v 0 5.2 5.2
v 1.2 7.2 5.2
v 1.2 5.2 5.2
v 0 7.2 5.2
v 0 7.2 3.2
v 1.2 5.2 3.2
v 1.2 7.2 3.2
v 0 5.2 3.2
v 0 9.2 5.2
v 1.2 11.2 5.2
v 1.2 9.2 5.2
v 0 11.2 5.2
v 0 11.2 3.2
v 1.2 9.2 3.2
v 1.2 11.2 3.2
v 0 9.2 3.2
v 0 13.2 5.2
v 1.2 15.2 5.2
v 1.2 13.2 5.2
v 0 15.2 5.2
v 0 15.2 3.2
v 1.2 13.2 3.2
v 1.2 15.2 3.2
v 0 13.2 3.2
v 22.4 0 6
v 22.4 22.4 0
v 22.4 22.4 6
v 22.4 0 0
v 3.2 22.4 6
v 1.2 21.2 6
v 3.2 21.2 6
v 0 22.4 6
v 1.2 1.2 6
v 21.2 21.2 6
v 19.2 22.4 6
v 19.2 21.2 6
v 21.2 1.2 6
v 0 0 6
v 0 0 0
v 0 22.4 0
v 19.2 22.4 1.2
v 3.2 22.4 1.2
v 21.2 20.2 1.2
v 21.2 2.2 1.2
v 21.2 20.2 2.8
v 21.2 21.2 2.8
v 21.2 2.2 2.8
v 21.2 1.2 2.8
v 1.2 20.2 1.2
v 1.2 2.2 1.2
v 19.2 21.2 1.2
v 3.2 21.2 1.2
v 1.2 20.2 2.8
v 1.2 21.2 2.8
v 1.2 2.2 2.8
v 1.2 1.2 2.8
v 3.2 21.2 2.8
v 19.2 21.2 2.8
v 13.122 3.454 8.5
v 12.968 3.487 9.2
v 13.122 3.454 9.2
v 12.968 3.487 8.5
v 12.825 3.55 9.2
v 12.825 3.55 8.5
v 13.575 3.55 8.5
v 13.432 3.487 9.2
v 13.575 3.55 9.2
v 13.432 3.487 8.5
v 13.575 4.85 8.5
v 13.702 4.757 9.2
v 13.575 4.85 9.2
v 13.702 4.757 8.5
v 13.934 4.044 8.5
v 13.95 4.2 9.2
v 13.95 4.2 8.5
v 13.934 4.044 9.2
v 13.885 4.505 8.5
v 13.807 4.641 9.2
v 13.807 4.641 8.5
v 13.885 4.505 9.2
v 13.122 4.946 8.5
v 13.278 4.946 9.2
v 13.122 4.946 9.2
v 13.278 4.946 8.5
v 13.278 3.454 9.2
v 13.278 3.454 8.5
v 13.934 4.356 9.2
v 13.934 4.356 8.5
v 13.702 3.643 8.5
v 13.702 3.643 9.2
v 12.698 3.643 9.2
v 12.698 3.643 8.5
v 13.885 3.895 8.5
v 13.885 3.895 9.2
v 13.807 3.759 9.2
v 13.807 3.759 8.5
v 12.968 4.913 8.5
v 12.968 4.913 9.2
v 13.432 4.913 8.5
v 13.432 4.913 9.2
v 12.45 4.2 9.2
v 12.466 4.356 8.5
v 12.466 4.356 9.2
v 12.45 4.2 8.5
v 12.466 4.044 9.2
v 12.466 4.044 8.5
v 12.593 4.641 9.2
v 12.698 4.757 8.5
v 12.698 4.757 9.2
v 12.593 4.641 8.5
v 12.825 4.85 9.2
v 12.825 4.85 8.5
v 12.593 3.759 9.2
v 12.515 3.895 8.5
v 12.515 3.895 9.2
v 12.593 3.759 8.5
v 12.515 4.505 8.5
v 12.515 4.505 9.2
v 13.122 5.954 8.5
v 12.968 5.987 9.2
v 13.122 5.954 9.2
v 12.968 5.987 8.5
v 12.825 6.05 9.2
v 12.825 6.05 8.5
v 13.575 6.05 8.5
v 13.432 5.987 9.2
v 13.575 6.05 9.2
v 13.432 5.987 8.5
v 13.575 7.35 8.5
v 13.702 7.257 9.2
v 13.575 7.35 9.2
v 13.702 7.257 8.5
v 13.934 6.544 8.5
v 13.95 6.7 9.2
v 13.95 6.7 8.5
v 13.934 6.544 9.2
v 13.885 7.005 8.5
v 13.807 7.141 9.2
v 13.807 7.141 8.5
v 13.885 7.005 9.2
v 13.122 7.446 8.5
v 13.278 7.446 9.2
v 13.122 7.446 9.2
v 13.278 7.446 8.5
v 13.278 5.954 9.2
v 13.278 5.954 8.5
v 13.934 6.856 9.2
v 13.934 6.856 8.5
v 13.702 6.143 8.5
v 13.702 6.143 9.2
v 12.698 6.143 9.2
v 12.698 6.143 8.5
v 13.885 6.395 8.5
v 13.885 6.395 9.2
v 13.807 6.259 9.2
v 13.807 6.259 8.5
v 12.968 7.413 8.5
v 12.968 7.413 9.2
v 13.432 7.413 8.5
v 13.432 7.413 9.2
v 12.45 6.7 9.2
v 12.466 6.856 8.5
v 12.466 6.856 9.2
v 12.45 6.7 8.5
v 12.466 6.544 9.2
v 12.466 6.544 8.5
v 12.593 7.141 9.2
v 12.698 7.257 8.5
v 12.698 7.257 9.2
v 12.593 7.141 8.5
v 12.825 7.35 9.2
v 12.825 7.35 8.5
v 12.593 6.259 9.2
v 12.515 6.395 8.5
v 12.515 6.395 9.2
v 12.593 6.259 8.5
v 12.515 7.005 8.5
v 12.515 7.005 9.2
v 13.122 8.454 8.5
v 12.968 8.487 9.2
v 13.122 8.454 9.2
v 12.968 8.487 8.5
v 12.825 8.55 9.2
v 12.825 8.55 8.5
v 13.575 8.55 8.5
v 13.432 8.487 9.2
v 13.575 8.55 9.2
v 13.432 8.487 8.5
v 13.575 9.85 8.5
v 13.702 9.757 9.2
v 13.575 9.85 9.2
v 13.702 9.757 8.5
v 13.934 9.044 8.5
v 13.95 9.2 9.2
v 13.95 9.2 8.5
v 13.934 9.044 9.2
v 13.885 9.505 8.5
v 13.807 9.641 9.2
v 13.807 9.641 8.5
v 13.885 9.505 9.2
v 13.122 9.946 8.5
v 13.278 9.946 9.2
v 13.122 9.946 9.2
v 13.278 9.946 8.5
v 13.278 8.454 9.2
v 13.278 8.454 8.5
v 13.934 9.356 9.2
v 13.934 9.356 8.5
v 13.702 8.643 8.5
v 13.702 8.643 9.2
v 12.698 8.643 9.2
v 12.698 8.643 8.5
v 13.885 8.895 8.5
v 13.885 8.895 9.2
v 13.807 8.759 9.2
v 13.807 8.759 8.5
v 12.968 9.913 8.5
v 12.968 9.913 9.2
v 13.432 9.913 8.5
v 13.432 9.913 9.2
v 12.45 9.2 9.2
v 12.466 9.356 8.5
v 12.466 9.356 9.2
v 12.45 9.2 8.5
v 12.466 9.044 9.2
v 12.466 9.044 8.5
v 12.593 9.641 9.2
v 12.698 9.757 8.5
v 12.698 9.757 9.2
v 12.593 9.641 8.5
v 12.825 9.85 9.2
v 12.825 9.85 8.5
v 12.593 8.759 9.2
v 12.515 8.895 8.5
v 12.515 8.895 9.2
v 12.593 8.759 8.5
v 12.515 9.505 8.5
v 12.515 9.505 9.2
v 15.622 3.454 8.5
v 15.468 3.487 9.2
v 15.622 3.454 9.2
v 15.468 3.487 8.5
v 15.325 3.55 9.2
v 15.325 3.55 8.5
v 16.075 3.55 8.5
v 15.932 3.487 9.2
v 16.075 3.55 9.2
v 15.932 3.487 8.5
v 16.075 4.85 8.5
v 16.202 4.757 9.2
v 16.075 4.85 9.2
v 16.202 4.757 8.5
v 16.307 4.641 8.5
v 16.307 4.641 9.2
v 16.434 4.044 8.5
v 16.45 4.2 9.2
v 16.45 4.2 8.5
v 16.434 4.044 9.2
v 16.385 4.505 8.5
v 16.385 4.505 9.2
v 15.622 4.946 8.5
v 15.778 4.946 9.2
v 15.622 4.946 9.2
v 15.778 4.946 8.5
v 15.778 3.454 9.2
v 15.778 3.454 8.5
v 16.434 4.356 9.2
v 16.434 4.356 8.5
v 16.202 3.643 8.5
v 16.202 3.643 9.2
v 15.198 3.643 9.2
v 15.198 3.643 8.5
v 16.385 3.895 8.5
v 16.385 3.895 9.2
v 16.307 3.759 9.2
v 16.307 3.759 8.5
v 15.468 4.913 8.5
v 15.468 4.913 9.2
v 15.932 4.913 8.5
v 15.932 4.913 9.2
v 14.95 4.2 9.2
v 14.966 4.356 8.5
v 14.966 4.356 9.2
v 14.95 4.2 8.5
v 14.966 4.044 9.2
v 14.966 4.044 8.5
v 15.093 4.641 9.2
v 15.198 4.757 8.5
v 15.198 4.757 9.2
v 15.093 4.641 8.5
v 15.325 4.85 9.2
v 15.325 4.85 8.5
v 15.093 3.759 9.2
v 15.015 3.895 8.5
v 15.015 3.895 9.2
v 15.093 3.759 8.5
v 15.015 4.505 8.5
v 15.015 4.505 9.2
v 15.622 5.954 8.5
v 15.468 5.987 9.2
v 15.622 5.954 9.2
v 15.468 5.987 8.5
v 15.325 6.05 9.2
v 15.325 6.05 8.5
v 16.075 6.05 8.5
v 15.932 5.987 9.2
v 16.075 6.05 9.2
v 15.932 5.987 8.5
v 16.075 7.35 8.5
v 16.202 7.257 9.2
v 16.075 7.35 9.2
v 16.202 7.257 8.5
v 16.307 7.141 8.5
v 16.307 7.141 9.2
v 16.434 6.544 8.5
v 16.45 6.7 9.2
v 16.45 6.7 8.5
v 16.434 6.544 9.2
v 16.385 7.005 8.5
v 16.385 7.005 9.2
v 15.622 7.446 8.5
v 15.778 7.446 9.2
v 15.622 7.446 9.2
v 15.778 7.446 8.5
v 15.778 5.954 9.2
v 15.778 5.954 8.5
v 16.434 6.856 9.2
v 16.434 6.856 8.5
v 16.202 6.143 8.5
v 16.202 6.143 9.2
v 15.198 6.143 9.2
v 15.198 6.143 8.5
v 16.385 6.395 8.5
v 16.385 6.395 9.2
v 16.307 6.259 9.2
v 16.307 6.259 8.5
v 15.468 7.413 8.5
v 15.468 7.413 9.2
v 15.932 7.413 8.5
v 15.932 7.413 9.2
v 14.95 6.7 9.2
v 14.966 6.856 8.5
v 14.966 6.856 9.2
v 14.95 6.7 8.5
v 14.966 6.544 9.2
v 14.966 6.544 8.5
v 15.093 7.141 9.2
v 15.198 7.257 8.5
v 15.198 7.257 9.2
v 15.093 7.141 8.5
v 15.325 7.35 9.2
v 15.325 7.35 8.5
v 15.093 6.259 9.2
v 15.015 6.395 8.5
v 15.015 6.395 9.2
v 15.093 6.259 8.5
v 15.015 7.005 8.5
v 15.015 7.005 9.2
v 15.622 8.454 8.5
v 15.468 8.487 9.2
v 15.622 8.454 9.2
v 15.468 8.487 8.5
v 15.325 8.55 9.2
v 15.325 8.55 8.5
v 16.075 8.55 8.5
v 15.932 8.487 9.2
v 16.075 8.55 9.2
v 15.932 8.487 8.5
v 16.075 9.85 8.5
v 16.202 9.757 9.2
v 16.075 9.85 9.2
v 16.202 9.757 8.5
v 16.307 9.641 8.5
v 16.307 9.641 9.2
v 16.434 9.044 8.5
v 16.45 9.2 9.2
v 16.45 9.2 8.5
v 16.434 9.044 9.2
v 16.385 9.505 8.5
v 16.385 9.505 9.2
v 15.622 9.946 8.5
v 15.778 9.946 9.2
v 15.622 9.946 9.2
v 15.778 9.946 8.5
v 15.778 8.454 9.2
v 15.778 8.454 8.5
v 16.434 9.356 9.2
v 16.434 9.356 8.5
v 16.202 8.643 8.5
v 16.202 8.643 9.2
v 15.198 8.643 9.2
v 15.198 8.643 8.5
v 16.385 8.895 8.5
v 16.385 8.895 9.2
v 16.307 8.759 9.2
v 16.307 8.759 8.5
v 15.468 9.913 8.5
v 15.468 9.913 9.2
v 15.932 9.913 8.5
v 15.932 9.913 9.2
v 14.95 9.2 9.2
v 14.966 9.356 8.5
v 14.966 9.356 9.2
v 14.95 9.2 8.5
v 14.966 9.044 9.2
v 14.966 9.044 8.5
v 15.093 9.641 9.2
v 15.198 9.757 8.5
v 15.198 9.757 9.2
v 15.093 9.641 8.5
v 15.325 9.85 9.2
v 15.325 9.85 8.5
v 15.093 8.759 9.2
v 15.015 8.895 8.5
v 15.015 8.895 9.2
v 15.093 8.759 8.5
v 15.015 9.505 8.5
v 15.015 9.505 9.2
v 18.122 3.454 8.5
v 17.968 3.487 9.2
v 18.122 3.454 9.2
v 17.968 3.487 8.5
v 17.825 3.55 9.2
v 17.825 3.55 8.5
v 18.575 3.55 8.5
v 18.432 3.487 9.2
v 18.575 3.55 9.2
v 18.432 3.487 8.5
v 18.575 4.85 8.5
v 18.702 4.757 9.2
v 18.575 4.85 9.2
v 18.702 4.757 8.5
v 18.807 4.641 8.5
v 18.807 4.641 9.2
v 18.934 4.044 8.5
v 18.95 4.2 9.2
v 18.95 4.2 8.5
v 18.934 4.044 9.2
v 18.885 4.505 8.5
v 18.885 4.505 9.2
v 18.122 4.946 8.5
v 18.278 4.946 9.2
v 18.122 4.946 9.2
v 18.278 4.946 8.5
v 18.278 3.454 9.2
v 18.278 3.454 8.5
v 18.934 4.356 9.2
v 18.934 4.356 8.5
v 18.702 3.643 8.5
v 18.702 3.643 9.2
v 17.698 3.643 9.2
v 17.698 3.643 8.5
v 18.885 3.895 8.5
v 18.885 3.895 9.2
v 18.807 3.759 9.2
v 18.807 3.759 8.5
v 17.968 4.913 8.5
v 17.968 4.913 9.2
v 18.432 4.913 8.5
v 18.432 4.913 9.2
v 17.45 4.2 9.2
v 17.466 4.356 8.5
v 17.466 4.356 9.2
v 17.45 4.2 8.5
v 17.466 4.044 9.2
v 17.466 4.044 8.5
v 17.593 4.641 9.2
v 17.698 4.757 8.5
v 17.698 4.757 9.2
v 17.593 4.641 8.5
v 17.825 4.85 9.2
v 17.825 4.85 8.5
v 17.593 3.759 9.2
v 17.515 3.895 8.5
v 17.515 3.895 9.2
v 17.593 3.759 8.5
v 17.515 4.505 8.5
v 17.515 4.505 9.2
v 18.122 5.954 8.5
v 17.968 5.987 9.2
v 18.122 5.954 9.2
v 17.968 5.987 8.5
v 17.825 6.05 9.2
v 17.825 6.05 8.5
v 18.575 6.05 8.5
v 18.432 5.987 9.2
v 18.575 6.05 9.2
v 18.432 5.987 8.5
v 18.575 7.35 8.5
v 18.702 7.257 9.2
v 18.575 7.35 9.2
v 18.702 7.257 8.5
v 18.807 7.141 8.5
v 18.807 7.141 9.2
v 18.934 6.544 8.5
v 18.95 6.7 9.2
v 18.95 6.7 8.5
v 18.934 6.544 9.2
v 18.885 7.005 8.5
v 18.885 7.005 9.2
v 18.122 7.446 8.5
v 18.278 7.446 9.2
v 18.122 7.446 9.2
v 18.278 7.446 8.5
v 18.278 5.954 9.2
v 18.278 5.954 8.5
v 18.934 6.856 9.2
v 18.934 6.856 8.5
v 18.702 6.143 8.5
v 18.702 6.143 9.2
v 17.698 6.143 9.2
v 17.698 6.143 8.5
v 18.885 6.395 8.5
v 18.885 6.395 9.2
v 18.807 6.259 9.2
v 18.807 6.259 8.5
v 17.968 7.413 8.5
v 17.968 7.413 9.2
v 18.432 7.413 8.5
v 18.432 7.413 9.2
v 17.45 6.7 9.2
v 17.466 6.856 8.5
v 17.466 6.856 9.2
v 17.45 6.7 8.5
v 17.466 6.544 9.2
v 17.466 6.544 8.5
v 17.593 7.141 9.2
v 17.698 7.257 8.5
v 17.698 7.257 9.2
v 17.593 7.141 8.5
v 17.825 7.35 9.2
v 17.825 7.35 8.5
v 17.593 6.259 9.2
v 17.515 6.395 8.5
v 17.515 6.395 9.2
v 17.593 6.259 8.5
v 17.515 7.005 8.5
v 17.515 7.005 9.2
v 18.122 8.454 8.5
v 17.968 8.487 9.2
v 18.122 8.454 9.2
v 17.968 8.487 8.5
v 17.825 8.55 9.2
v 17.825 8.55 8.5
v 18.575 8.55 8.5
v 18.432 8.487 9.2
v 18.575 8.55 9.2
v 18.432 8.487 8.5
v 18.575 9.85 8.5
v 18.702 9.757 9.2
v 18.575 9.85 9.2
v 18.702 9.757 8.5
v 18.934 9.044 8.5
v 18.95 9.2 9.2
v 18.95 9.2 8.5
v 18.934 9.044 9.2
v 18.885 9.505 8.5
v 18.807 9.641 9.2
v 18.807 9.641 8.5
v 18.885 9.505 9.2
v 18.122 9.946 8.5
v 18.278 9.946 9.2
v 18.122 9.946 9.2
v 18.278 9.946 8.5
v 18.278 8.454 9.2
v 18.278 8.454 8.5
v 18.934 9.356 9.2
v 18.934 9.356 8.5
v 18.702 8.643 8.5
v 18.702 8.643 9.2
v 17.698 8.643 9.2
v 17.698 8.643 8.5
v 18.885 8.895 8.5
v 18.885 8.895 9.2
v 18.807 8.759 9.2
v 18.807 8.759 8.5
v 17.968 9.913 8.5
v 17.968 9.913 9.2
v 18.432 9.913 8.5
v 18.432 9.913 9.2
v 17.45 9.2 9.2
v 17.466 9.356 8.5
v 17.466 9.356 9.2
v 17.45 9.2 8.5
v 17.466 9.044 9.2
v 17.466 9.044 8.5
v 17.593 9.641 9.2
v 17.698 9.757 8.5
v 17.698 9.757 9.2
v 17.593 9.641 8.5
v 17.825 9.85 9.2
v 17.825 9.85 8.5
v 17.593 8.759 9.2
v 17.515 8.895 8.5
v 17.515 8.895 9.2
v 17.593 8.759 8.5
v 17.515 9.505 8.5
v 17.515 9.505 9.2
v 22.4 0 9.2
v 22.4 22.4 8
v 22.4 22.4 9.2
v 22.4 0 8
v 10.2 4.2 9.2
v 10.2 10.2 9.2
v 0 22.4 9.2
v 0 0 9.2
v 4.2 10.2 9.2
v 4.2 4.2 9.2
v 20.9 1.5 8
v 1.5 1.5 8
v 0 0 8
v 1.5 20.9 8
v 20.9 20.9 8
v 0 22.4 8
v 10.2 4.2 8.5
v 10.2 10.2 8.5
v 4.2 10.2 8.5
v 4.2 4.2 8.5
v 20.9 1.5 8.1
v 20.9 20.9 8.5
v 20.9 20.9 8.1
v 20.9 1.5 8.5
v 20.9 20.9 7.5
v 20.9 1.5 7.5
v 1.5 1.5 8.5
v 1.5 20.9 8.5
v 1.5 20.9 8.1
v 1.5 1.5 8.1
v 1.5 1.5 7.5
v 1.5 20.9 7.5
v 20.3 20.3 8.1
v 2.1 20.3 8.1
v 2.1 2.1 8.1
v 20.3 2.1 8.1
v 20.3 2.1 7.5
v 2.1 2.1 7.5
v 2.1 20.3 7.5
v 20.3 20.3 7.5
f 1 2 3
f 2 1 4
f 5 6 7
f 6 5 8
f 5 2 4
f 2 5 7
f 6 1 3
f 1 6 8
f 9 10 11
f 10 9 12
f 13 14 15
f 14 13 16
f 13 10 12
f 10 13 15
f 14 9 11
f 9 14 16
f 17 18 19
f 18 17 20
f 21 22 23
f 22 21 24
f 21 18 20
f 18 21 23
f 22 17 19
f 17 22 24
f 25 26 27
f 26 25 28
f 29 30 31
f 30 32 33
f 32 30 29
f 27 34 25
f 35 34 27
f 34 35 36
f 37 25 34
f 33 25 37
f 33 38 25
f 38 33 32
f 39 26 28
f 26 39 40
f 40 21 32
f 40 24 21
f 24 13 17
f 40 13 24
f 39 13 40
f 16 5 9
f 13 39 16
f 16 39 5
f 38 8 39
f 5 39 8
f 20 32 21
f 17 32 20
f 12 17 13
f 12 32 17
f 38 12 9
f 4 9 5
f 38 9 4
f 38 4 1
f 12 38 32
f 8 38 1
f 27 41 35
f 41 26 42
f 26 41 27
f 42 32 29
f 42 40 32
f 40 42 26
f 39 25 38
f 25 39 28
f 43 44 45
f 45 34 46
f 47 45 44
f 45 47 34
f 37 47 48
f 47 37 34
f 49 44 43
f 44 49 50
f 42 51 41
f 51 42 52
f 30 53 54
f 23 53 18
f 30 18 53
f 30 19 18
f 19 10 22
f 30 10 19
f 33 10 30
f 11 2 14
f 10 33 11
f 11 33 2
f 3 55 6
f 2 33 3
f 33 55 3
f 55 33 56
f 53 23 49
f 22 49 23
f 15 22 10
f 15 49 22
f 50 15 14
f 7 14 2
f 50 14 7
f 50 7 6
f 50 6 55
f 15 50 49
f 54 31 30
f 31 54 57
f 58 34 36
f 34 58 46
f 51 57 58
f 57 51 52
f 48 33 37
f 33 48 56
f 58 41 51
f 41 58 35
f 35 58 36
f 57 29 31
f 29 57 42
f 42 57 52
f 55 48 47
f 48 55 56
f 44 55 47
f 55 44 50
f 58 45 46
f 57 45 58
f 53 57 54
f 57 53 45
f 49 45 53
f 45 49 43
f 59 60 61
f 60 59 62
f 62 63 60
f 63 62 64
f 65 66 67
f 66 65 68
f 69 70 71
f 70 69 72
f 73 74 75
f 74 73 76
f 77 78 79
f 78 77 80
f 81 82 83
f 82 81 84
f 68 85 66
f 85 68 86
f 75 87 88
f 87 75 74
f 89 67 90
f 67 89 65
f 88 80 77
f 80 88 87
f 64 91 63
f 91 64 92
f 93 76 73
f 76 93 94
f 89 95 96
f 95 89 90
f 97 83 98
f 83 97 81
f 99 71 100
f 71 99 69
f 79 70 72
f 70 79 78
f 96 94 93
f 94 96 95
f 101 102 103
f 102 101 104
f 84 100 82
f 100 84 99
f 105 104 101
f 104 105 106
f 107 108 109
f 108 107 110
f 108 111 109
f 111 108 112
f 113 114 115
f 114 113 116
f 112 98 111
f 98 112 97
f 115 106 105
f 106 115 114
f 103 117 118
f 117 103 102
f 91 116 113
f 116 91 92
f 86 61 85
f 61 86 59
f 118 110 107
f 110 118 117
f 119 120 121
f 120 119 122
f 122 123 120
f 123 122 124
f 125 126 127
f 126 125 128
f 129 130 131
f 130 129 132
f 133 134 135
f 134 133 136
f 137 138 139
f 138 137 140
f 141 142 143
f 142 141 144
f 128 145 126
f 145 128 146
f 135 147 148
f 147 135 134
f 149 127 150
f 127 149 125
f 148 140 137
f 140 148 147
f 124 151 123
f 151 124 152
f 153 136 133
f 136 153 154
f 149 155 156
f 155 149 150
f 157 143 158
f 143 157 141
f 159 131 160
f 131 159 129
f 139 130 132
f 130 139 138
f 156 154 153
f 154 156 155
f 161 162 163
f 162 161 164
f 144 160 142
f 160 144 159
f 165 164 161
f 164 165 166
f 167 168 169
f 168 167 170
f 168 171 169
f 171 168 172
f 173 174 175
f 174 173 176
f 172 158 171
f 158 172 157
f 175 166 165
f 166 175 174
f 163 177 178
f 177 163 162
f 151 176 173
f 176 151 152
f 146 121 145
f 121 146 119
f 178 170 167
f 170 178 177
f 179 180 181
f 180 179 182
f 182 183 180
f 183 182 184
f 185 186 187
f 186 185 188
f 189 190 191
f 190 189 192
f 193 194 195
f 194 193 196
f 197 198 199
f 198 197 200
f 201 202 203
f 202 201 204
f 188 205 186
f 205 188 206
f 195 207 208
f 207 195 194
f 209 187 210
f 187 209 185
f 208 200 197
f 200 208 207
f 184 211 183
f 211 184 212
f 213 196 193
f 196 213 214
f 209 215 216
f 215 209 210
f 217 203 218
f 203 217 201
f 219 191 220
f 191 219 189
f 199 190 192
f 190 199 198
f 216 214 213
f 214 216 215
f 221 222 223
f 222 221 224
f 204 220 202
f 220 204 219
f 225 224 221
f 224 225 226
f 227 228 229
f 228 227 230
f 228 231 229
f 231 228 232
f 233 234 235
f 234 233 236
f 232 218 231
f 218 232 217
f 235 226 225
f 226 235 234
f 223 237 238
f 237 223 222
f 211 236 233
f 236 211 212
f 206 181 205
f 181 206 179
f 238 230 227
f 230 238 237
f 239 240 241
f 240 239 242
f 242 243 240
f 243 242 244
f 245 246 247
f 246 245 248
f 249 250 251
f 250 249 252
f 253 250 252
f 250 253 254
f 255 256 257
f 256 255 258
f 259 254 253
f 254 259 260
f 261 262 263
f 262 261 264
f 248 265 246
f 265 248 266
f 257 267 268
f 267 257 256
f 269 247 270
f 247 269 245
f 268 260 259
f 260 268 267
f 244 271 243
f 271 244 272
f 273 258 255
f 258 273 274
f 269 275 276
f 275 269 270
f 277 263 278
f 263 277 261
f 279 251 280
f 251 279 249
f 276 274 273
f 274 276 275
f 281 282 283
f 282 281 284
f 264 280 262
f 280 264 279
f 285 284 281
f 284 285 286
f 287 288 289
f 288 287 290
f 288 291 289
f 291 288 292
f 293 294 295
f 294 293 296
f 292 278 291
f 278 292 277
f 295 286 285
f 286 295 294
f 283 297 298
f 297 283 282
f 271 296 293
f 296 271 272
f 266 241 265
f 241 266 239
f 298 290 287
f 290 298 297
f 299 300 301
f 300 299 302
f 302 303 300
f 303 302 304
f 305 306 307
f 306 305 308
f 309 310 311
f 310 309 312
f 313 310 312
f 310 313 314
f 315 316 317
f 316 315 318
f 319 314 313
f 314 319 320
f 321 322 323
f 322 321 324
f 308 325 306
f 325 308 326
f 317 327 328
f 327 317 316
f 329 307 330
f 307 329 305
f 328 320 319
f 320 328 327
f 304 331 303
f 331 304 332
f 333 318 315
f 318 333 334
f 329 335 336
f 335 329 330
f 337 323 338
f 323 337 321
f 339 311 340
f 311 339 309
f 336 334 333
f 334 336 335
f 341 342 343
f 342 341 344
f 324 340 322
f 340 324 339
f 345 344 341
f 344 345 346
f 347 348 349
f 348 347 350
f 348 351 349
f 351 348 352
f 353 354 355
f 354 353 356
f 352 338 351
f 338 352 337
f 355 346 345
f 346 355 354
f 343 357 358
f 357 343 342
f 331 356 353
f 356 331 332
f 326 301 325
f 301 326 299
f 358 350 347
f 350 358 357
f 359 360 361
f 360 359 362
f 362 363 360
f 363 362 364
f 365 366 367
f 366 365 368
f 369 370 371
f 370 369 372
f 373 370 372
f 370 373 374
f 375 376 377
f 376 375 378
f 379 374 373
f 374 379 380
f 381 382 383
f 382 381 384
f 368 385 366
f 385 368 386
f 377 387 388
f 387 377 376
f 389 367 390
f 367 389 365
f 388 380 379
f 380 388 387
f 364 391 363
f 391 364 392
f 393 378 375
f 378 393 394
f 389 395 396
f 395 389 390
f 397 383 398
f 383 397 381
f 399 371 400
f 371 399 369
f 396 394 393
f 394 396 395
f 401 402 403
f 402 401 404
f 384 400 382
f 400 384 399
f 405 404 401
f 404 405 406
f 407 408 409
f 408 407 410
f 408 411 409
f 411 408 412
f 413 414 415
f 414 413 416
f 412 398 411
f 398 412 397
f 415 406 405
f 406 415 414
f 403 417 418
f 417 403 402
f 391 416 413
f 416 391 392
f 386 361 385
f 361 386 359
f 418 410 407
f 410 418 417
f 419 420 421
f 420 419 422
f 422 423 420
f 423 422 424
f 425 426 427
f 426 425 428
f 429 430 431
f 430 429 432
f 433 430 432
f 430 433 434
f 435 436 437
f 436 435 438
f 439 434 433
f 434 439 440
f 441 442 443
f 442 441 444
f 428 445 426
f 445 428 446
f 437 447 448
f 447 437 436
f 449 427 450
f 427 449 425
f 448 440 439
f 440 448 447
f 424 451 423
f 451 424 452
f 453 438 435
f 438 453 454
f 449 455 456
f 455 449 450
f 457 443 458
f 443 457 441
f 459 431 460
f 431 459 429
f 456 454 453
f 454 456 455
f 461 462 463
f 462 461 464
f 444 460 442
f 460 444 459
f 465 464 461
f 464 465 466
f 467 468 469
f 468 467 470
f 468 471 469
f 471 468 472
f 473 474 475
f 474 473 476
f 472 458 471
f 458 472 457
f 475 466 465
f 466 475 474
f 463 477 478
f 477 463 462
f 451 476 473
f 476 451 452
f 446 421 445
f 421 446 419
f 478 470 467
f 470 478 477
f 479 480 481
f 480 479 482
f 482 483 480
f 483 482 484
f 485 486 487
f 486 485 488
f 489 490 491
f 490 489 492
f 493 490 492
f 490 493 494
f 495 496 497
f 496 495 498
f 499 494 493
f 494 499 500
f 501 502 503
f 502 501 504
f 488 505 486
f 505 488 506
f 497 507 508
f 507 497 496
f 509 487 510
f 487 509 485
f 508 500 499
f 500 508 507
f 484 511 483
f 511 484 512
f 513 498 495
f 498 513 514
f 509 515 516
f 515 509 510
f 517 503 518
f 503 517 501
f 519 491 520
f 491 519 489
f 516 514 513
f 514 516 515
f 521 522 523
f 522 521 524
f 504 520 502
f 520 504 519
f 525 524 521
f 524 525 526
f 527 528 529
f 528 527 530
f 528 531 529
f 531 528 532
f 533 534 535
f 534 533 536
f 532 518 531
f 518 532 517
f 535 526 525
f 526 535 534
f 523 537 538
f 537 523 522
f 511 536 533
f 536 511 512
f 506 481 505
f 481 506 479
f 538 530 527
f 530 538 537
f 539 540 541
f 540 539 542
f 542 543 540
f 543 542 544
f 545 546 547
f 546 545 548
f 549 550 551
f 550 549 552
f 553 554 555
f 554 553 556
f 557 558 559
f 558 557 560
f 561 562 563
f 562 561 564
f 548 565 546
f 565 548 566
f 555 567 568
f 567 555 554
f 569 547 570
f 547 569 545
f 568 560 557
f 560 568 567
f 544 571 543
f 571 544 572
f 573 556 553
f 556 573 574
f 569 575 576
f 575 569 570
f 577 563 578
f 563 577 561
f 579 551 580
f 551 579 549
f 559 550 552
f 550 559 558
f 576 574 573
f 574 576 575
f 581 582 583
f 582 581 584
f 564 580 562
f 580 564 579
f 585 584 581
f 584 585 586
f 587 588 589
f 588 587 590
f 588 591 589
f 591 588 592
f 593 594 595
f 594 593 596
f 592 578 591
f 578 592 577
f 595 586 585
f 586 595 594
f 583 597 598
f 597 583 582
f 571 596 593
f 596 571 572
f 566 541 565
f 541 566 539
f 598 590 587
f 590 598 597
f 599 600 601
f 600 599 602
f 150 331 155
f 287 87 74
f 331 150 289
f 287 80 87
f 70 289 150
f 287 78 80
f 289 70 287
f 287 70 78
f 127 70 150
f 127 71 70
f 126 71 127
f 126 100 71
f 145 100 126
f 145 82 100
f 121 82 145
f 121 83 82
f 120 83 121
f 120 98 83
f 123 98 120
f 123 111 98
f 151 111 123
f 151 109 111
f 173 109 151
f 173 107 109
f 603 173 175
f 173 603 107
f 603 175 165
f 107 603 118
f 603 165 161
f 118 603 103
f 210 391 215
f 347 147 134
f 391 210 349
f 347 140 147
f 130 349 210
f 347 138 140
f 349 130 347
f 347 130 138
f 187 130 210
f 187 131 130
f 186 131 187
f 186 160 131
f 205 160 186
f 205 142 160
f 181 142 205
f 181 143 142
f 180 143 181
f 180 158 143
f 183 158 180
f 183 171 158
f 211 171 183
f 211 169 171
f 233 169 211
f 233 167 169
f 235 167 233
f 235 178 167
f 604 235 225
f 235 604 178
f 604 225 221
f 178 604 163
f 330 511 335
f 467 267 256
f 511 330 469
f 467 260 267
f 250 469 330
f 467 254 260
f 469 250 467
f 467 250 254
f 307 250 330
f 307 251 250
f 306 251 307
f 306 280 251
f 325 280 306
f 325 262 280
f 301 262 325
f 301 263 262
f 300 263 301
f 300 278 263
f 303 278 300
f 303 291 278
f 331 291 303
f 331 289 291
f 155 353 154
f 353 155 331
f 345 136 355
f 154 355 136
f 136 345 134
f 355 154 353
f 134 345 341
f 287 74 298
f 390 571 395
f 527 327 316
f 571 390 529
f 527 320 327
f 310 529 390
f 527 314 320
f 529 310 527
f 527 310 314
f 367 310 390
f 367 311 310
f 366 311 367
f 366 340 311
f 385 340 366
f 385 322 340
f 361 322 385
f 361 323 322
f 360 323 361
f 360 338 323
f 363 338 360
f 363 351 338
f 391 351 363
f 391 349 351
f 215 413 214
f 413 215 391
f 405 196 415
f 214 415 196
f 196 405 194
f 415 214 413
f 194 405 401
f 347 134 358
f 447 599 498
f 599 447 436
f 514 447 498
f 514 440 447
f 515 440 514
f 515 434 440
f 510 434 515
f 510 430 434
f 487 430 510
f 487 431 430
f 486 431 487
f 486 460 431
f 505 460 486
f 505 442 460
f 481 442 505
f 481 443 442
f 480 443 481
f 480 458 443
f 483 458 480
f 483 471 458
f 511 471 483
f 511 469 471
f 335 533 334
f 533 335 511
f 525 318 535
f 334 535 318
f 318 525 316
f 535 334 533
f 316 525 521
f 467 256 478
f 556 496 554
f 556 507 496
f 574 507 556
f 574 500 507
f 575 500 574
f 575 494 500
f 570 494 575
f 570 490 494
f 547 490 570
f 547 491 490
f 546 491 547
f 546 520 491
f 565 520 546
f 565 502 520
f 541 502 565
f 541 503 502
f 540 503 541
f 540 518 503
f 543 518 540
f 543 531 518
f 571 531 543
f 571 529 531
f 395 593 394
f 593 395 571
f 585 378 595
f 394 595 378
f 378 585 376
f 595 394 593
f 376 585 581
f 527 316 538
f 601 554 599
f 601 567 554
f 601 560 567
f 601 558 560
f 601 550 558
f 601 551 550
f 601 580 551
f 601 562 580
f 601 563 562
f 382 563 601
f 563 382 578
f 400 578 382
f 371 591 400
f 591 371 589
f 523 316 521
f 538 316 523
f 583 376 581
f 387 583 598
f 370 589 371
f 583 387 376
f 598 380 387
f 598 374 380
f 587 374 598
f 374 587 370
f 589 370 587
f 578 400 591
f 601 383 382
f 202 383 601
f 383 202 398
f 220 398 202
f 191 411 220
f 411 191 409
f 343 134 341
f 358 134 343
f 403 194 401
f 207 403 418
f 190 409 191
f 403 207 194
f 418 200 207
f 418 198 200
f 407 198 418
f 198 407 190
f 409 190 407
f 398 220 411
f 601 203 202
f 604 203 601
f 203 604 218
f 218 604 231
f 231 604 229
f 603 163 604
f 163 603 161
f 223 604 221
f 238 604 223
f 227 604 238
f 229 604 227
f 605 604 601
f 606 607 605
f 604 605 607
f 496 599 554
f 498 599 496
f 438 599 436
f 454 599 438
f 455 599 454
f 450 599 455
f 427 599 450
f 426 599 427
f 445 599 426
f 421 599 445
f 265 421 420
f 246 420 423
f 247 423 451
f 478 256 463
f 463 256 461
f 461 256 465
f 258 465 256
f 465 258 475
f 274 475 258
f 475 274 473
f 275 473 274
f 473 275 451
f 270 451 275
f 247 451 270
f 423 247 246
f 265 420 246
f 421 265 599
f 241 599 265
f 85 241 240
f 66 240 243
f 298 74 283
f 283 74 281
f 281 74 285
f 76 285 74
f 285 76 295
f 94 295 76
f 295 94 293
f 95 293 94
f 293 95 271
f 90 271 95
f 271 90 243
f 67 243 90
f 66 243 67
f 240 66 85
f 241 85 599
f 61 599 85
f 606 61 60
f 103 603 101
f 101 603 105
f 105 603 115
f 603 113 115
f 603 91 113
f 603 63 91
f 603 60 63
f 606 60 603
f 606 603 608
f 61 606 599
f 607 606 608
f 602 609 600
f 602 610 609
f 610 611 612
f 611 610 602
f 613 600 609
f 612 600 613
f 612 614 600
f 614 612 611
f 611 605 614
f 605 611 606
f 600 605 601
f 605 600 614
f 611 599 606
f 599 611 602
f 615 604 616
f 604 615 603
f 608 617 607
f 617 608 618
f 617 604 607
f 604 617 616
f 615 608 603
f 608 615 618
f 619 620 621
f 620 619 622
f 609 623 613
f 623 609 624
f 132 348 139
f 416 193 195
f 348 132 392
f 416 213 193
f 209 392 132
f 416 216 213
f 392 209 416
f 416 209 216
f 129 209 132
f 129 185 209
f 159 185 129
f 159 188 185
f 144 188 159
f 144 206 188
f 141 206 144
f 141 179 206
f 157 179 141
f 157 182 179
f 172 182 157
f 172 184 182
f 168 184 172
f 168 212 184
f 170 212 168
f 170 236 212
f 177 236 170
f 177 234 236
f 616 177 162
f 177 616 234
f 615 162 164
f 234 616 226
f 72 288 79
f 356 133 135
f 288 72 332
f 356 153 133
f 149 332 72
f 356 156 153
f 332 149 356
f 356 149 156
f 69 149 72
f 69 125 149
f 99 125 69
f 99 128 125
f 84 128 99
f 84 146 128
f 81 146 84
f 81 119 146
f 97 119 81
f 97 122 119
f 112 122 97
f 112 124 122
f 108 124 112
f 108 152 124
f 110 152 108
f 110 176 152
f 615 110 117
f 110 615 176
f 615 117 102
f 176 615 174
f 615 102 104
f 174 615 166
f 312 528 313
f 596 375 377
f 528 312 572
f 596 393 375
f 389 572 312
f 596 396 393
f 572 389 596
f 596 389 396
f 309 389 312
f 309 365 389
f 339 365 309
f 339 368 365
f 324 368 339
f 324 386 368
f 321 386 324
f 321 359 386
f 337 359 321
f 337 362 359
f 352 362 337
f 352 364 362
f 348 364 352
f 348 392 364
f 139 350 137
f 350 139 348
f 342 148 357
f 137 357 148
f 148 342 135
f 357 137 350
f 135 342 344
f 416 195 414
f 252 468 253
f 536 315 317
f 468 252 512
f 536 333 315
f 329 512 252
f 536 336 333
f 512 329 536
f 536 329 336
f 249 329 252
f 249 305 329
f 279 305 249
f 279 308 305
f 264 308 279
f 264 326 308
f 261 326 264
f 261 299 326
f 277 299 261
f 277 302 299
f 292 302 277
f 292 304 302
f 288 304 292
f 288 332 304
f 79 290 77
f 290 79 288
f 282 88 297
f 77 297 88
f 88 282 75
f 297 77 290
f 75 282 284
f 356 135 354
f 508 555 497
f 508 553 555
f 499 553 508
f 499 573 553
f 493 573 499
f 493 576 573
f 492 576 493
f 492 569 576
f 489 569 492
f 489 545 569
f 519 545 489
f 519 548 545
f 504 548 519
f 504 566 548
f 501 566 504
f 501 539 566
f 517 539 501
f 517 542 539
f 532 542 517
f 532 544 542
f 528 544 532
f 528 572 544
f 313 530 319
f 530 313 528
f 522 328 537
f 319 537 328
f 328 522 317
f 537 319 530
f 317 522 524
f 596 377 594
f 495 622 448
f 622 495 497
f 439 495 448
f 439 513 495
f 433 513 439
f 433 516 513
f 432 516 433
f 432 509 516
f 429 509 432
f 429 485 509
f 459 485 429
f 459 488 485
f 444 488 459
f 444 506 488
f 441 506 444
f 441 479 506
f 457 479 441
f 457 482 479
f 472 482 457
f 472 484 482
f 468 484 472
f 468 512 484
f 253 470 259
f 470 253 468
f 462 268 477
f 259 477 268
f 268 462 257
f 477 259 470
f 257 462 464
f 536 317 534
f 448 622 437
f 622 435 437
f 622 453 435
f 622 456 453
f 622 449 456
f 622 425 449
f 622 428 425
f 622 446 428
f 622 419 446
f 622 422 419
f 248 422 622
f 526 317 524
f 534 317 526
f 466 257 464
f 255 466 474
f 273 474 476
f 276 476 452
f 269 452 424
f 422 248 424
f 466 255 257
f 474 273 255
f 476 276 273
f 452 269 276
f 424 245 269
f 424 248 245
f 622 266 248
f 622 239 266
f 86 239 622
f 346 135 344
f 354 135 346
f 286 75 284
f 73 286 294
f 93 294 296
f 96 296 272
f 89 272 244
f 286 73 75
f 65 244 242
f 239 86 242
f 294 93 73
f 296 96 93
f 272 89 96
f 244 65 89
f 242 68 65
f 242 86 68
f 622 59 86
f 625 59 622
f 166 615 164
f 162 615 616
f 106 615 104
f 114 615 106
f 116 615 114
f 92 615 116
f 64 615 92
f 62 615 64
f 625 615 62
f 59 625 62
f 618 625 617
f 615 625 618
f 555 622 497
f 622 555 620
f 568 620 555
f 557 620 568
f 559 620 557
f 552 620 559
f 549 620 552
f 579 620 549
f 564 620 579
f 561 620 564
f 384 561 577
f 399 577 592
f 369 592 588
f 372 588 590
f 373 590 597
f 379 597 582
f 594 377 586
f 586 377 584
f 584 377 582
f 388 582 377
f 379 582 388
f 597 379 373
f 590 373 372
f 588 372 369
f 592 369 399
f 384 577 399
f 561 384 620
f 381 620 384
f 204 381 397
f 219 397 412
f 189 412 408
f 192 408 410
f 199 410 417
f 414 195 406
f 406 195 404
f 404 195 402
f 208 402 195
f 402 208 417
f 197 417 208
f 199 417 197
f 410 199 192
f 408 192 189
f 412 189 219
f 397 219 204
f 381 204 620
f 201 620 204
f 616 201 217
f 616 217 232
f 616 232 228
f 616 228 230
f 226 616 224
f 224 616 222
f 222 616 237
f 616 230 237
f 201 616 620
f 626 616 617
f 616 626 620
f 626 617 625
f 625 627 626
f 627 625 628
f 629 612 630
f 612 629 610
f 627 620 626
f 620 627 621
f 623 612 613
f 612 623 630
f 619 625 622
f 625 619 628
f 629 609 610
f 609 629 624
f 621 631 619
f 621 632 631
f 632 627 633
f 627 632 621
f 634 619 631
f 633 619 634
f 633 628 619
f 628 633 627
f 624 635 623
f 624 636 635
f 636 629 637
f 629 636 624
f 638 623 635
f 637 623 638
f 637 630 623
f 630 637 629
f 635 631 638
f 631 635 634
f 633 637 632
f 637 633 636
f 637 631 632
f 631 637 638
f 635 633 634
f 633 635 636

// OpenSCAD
// RWC Sensor Module Case (1U: 20×20mm)
$fn = 30;

pcb_w = 20;
pcb_d = 20;
pcb_h = 1.6;
wall = 1.2;
case_h = 6;
lid_h = 1.2;
tol = 0.3;

module base() {
    difference() {
        cube([pcb_w + wall*2, pcb_d + wall*2, case_h]);
        translate([wall, wall, wall])
            cube([pcb_w, pcb_d, case_h]);
        // Pogo pin slot (back)
        translate([wall + 2, pcb_d + wall - 0.1, wall])
            cube([16, wall + 0.2, 5]);
        // Sensor ventilation holes (top area, front wall)
        for (i = [0:2])
            translate([-0.1, wall + 4 + i*4, wall + 2])
                cube([wall + 0.2, 2, 2]);
    }
    // PCB ledges
    for (y = [wall, wall + pcb_d - 1])
        translate([wall, y, wall])
            cube([pcb_w, 1, pcb_h]);
}

module lid() {
    translate([0, 0, case_h + 2]) {
        difference() {
            cube([pcb_w + wall*2, pcb_d + wall*2, lid_h]);
            // Light sensor window (translucent filament recommended)
            translate([wall + 3, wall + 3, -0.1])
                cube([6, 6, lid_h + 0.2]);
            // Vent grid for SHT30
            for (x = [0:2], y = [0:2])
                translate([wall + 12 + x*2.5, wall + 3 + y*2.5, -0.1])
                    cylinder(d=1.5, h=lid_h + 0.2);
            // Snap fit
            translate([wall + tol, wall + tol, -0.1])
                cube([pcb_w - tol*2, pcb_d - tol*2, 0.6]);
        }
        translate([wall + tol, wall + tol, -0.5])
            difference() {
                cube([pcb_w - tol*2, pcb_d - tol*2, 0.6]);
                translate([0.6, 0.6, -0.1])
                    cube([pcb_w - tol*2 - 1.2, pcb_d - tol*2 - 1.2, 0.8]);
            }
    }
}

base();
lid();
